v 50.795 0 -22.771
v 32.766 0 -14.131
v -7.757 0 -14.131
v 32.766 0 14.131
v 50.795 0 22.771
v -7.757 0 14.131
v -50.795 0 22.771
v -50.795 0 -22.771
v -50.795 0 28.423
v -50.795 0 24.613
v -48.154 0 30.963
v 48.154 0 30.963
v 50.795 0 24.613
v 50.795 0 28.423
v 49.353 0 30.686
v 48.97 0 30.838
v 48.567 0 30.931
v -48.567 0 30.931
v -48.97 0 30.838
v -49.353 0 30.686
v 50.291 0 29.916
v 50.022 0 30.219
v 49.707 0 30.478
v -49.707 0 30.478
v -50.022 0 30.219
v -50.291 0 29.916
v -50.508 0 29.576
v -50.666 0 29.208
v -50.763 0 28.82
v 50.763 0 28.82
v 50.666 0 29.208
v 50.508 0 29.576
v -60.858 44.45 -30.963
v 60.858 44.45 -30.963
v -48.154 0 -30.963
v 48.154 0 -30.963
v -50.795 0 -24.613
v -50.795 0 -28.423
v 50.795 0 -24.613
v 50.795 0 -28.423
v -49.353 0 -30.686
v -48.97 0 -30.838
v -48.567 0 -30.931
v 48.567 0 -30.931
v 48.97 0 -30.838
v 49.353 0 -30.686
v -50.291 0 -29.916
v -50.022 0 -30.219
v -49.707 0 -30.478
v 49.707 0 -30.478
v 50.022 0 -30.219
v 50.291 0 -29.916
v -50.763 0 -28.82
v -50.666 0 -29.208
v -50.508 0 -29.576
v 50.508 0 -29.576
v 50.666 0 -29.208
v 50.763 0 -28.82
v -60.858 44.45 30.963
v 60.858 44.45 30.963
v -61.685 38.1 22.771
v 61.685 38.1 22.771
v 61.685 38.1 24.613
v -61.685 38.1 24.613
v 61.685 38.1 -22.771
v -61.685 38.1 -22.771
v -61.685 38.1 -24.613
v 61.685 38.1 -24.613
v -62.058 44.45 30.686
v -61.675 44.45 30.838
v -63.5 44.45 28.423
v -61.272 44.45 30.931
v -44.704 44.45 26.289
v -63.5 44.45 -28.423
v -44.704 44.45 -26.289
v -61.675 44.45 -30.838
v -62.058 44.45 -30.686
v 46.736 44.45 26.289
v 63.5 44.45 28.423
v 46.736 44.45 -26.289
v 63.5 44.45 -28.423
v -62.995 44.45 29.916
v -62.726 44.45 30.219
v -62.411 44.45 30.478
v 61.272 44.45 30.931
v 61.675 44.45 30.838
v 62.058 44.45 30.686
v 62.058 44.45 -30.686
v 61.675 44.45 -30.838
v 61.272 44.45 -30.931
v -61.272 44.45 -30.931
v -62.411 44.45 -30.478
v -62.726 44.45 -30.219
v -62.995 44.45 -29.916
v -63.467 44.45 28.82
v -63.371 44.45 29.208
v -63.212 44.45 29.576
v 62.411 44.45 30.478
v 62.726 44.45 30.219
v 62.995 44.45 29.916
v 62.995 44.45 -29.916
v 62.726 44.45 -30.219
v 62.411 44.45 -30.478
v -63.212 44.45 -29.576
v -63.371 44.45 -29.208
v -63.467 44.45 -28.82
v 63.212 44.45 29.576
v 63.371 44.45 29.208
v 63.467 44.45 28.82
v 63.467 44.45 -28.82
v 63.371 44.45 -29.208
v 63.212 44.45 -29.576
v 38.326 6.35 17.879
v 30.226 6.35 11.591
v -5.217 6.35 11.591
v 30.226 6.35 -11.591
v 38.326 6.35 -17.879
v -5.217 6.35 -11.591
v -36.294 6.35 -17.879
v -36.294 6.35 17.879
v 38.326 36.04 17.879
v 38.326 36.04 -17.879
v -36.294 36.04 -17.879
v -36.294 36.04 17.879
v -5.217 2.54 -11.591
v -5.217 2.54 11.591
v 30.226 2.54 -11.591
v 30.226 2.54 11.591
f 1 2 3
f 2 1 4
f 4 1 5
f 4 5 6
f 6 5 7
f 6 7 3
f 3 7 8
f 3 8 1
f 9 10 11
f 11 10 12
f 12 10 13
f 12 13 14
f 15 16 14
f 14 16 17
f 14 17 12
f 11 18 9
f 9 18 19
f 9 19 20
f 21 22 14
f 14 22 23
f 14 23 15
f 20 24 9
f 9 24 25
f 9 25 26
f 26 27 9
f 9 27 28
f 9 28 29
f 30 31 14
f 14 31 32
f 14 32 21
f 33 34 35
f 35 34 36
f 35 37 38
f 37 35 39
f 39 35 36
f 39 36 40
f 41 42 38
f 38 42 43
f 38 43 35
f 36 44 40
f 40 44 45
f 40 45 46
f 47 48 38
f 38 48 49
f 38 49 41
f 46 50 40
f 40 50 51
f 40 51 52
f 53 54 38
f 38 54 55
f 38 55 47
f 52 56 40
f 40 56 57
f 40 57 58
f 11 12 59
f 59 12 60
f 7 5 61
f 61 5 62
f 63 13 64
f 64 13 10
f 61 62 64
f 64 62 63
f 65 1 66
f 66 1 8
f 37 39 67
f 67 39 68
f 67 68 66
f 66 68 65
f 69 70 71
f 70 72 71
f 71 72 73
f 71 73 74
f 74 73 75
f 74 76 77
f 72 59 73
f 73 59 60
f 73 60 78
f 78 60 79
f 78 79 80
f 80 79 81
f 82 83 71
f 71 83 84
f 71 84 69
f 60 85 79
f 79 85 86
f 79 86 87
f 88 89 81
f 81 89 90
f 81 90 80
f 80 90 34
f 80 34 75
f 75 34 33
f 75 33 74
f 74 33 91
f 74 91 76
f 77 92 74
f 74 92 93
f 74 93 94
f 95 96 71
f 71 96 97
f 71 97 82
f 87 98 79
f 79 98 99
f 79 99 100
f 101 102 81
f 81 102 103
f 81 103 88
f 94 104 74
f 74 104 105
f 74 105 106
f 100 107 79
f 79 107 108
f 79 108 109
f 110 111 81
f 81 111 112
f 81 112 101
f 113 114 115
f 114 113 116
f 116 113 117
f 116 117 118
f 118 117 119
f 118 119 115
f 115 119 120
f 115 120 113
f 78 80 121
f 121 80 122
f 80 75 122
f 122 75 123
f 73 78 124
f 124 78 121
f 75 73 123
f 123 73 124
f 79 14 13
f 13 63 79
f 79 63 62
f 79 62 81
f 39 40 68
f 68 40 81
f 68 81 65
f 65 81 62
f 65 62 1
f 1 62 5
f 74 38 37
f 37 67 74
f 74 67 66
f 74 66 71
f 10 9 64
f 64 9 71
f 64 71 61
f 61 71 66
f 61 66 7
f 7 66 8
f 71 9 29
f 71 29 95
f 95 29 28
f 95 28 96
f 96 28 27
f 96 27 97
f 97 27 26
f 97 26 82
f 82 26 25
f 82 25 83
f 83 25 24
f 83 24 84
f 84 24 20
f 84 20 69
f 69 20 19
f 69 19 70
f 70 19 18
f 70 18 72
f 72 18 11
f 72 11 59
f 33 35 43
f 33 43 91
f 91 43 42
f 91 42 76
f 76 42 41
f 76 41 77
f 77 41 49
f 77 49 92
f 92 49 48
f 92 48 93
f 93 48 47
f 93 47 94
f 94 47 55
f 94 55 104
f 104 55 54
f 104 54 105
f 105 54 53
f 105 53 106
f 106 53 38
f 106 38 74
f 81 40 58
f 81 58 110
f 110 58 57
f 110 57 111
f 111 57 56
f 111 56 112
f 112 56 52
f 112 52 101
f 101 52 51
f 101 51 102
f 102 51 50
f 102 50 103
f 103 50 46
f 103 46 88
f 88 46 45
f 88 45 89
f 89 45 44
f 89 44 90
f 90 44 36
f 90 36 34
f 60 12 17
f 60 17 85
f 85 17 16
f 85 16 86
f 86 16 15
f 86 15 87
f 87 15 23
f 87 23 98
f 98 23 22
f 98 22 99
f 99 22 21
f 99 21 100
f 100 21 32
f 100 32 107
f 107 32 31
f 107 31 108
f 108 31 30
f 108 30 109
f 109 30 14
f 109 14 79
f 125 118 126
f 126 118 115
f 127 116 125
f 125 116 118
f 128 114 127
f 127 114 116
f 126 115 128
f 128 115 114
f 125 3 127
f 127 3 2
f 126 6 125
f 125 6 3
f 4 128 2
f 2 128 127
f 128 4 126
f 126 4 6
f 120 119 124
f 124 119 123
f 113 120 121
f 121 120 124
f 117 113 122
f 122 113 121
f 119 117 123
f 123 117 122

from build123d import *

# Parameters (mm, degrees)
SKETCH1_W           = 127
SKETCH1_H           = 61.9252
BOSS_EXTRUDE1_DEPTH = 44.45
SKETCH1_3_W         = 127
SKETCH1_3_H         = 1.8415
CUT_EXTRUDE2_DEPTH  = 38.1
SKETCH2_W           = 71.12
SKETCH2_H           = 32.258
SKETCH2_W_2         = 35.442647017
SKETCH2_H_2         = 23.182829488
CUT_EXTRUDE3_DEPTH  = 38.1
CHAMFER2_SIZE       = 10.16
CUT_EXTRUDE5_DEPTH  = 100.210800294
FILLET3_R           = 2.54
SKETCH2_3_W         = 35.442647017
SKETCH2_3_H         = 23.182829488
CUT_EXTRUDE6_DEPTH  = 84.466970107
CHAMFER3_SIZE       = 2.54
SKETCH9_W           = 74.62
SKETCH9_H           = 35.758
CUT_EXTRUDE7_DEPTH  = 38.1


with BuildPart() as part:
    # Sketch1 → Boss-Extrude1 (new body)
    with BuildSketch(Plane(origin=(0, 0, 0), x_dir=(1, 0, 0), z_dir=(0, 1, 0))):
        Rectangle(SKETCH1_W, SKETCH1_H)
    extrude(amount=BOSS_EXTRUDE1_DEPTH)

    # Sketch1<3> → Cut-Extrude2 (cut)
    with BuildSketch(Plane(origin=(0, 0, 0), x_dir=(1, 0, 0), z_dir=(0, 1, 0))):
        with Locations((0, 23.69185)):
            Rectangle(SKETCH1_3_W, SKETCH1_3_H)
        with Locations((0, -23.69185)):
            Rectangle(SKETCH1_3_W, SKETCH1_3_H)
    extrude(amount=CUT_EXTRUDE2_DEPTH, mode=Mode.SUBTRACT)

    # Sketch2 → Cut-Extrude3 (cut)
    with BuildSketch(Plane(origin=(0, 44.45, 0), x_dir=(1, 0, 0), z_dir=(0, 1, 0))):
        with Locations((1.016, 0)):
            Rectangle(SKETCH2_W, SKETCH2_H)
        with Locations((12.504676492, 0)):
            Rectangle(SKETCH2_W_2, SKETCH2_H_2, mode=Mode.SUBTRACT)
    extrude(amount=-CUT_EXTRUDE3_DEPTH, mode=Mode.SUBTRACT)

    # Chamfer2
    chamfer2_edges = [part.edges().sort_by_distance(p)[0] for p in [
        (36.576, 44.45, 0),
        (1.016, 44.45, -16.129),
        (-34.544, 44.45, 0),
        (1.016, 44.45, 16.129),
    ]]
    chamfer(chamfer2_edges, length=CHAMFER2_SIZE)

    # Sketch7 → Cut-Extrude5 (cut, through all)
    with BuildSketch(Plane.XY.offset(30.9626)):
        Polygon((-50.795476794, 0), (-63.5, 44.45), (-63.5, 0), align=None)
        Polygon((63.5, 44.45), (50.795476794, 0), (63.5, 0), align=None)
    extrude(amount=-CUT_EXTRUDE5_DEPTH, mode=Mode.SUBTRACT)

    # Fillet3
    fillet3_edges = [part.edges().sort_by_distance(p)[0] for p in [
        (-57.147738397, 22.225, -30.9626),
        (-57.147738397, 22.225, 30.9626),
        (57.147738397, 22.225, 30.9626),
        (57.147738397, 22.225, -30.9626),
    ]]
    fillet(fillet3_edges, radius=FILLET3_R)

    # Sketch2<3> → Cut-Extrude6 (cut, through all)
    with BuildSketch(Plane(origin=(0, 44.45, 0), x_dir=(1, 0, 0), z_dir=(0, 1, 0))):
        with Locations((12.504676492, 0)):
            Rectangle(SKETCH2_3_W, SKETCH2_3_H)
    extrude(amount=-CUT_EXTRUDE6_DEPTH, mode=Mode.SUBTRACT)

    # Chamfer3
    chamfer3_edges = [part.edges().sort_by_distance(p)[0] for p in [
        (30.226, 0, 0),
        (12.504676491, 0, 11.591414744),
        (-5.216647017, 0, 0),
        (12.504676491, 0, -11.591414744),
    ]]
    chamfer(chamfer3_edges, length=CHAMFER3_SIZE)

    # Sketch9 → Cut-Extrude7 (cut)
    with BuildSketch(Plane(origin=(0, 44.45, 0), x_dir=(1, 0, 0), z_dir=(0, 1, 0))):
        with Locations((1.016, 0)):
            Rectangle(SKETCH9_W, SKETCH9_H)
    extrude(amount=-CUT_EXTRUDE7_DEPTH, mode=Mode.SUBTRACT)


solid = part.part
